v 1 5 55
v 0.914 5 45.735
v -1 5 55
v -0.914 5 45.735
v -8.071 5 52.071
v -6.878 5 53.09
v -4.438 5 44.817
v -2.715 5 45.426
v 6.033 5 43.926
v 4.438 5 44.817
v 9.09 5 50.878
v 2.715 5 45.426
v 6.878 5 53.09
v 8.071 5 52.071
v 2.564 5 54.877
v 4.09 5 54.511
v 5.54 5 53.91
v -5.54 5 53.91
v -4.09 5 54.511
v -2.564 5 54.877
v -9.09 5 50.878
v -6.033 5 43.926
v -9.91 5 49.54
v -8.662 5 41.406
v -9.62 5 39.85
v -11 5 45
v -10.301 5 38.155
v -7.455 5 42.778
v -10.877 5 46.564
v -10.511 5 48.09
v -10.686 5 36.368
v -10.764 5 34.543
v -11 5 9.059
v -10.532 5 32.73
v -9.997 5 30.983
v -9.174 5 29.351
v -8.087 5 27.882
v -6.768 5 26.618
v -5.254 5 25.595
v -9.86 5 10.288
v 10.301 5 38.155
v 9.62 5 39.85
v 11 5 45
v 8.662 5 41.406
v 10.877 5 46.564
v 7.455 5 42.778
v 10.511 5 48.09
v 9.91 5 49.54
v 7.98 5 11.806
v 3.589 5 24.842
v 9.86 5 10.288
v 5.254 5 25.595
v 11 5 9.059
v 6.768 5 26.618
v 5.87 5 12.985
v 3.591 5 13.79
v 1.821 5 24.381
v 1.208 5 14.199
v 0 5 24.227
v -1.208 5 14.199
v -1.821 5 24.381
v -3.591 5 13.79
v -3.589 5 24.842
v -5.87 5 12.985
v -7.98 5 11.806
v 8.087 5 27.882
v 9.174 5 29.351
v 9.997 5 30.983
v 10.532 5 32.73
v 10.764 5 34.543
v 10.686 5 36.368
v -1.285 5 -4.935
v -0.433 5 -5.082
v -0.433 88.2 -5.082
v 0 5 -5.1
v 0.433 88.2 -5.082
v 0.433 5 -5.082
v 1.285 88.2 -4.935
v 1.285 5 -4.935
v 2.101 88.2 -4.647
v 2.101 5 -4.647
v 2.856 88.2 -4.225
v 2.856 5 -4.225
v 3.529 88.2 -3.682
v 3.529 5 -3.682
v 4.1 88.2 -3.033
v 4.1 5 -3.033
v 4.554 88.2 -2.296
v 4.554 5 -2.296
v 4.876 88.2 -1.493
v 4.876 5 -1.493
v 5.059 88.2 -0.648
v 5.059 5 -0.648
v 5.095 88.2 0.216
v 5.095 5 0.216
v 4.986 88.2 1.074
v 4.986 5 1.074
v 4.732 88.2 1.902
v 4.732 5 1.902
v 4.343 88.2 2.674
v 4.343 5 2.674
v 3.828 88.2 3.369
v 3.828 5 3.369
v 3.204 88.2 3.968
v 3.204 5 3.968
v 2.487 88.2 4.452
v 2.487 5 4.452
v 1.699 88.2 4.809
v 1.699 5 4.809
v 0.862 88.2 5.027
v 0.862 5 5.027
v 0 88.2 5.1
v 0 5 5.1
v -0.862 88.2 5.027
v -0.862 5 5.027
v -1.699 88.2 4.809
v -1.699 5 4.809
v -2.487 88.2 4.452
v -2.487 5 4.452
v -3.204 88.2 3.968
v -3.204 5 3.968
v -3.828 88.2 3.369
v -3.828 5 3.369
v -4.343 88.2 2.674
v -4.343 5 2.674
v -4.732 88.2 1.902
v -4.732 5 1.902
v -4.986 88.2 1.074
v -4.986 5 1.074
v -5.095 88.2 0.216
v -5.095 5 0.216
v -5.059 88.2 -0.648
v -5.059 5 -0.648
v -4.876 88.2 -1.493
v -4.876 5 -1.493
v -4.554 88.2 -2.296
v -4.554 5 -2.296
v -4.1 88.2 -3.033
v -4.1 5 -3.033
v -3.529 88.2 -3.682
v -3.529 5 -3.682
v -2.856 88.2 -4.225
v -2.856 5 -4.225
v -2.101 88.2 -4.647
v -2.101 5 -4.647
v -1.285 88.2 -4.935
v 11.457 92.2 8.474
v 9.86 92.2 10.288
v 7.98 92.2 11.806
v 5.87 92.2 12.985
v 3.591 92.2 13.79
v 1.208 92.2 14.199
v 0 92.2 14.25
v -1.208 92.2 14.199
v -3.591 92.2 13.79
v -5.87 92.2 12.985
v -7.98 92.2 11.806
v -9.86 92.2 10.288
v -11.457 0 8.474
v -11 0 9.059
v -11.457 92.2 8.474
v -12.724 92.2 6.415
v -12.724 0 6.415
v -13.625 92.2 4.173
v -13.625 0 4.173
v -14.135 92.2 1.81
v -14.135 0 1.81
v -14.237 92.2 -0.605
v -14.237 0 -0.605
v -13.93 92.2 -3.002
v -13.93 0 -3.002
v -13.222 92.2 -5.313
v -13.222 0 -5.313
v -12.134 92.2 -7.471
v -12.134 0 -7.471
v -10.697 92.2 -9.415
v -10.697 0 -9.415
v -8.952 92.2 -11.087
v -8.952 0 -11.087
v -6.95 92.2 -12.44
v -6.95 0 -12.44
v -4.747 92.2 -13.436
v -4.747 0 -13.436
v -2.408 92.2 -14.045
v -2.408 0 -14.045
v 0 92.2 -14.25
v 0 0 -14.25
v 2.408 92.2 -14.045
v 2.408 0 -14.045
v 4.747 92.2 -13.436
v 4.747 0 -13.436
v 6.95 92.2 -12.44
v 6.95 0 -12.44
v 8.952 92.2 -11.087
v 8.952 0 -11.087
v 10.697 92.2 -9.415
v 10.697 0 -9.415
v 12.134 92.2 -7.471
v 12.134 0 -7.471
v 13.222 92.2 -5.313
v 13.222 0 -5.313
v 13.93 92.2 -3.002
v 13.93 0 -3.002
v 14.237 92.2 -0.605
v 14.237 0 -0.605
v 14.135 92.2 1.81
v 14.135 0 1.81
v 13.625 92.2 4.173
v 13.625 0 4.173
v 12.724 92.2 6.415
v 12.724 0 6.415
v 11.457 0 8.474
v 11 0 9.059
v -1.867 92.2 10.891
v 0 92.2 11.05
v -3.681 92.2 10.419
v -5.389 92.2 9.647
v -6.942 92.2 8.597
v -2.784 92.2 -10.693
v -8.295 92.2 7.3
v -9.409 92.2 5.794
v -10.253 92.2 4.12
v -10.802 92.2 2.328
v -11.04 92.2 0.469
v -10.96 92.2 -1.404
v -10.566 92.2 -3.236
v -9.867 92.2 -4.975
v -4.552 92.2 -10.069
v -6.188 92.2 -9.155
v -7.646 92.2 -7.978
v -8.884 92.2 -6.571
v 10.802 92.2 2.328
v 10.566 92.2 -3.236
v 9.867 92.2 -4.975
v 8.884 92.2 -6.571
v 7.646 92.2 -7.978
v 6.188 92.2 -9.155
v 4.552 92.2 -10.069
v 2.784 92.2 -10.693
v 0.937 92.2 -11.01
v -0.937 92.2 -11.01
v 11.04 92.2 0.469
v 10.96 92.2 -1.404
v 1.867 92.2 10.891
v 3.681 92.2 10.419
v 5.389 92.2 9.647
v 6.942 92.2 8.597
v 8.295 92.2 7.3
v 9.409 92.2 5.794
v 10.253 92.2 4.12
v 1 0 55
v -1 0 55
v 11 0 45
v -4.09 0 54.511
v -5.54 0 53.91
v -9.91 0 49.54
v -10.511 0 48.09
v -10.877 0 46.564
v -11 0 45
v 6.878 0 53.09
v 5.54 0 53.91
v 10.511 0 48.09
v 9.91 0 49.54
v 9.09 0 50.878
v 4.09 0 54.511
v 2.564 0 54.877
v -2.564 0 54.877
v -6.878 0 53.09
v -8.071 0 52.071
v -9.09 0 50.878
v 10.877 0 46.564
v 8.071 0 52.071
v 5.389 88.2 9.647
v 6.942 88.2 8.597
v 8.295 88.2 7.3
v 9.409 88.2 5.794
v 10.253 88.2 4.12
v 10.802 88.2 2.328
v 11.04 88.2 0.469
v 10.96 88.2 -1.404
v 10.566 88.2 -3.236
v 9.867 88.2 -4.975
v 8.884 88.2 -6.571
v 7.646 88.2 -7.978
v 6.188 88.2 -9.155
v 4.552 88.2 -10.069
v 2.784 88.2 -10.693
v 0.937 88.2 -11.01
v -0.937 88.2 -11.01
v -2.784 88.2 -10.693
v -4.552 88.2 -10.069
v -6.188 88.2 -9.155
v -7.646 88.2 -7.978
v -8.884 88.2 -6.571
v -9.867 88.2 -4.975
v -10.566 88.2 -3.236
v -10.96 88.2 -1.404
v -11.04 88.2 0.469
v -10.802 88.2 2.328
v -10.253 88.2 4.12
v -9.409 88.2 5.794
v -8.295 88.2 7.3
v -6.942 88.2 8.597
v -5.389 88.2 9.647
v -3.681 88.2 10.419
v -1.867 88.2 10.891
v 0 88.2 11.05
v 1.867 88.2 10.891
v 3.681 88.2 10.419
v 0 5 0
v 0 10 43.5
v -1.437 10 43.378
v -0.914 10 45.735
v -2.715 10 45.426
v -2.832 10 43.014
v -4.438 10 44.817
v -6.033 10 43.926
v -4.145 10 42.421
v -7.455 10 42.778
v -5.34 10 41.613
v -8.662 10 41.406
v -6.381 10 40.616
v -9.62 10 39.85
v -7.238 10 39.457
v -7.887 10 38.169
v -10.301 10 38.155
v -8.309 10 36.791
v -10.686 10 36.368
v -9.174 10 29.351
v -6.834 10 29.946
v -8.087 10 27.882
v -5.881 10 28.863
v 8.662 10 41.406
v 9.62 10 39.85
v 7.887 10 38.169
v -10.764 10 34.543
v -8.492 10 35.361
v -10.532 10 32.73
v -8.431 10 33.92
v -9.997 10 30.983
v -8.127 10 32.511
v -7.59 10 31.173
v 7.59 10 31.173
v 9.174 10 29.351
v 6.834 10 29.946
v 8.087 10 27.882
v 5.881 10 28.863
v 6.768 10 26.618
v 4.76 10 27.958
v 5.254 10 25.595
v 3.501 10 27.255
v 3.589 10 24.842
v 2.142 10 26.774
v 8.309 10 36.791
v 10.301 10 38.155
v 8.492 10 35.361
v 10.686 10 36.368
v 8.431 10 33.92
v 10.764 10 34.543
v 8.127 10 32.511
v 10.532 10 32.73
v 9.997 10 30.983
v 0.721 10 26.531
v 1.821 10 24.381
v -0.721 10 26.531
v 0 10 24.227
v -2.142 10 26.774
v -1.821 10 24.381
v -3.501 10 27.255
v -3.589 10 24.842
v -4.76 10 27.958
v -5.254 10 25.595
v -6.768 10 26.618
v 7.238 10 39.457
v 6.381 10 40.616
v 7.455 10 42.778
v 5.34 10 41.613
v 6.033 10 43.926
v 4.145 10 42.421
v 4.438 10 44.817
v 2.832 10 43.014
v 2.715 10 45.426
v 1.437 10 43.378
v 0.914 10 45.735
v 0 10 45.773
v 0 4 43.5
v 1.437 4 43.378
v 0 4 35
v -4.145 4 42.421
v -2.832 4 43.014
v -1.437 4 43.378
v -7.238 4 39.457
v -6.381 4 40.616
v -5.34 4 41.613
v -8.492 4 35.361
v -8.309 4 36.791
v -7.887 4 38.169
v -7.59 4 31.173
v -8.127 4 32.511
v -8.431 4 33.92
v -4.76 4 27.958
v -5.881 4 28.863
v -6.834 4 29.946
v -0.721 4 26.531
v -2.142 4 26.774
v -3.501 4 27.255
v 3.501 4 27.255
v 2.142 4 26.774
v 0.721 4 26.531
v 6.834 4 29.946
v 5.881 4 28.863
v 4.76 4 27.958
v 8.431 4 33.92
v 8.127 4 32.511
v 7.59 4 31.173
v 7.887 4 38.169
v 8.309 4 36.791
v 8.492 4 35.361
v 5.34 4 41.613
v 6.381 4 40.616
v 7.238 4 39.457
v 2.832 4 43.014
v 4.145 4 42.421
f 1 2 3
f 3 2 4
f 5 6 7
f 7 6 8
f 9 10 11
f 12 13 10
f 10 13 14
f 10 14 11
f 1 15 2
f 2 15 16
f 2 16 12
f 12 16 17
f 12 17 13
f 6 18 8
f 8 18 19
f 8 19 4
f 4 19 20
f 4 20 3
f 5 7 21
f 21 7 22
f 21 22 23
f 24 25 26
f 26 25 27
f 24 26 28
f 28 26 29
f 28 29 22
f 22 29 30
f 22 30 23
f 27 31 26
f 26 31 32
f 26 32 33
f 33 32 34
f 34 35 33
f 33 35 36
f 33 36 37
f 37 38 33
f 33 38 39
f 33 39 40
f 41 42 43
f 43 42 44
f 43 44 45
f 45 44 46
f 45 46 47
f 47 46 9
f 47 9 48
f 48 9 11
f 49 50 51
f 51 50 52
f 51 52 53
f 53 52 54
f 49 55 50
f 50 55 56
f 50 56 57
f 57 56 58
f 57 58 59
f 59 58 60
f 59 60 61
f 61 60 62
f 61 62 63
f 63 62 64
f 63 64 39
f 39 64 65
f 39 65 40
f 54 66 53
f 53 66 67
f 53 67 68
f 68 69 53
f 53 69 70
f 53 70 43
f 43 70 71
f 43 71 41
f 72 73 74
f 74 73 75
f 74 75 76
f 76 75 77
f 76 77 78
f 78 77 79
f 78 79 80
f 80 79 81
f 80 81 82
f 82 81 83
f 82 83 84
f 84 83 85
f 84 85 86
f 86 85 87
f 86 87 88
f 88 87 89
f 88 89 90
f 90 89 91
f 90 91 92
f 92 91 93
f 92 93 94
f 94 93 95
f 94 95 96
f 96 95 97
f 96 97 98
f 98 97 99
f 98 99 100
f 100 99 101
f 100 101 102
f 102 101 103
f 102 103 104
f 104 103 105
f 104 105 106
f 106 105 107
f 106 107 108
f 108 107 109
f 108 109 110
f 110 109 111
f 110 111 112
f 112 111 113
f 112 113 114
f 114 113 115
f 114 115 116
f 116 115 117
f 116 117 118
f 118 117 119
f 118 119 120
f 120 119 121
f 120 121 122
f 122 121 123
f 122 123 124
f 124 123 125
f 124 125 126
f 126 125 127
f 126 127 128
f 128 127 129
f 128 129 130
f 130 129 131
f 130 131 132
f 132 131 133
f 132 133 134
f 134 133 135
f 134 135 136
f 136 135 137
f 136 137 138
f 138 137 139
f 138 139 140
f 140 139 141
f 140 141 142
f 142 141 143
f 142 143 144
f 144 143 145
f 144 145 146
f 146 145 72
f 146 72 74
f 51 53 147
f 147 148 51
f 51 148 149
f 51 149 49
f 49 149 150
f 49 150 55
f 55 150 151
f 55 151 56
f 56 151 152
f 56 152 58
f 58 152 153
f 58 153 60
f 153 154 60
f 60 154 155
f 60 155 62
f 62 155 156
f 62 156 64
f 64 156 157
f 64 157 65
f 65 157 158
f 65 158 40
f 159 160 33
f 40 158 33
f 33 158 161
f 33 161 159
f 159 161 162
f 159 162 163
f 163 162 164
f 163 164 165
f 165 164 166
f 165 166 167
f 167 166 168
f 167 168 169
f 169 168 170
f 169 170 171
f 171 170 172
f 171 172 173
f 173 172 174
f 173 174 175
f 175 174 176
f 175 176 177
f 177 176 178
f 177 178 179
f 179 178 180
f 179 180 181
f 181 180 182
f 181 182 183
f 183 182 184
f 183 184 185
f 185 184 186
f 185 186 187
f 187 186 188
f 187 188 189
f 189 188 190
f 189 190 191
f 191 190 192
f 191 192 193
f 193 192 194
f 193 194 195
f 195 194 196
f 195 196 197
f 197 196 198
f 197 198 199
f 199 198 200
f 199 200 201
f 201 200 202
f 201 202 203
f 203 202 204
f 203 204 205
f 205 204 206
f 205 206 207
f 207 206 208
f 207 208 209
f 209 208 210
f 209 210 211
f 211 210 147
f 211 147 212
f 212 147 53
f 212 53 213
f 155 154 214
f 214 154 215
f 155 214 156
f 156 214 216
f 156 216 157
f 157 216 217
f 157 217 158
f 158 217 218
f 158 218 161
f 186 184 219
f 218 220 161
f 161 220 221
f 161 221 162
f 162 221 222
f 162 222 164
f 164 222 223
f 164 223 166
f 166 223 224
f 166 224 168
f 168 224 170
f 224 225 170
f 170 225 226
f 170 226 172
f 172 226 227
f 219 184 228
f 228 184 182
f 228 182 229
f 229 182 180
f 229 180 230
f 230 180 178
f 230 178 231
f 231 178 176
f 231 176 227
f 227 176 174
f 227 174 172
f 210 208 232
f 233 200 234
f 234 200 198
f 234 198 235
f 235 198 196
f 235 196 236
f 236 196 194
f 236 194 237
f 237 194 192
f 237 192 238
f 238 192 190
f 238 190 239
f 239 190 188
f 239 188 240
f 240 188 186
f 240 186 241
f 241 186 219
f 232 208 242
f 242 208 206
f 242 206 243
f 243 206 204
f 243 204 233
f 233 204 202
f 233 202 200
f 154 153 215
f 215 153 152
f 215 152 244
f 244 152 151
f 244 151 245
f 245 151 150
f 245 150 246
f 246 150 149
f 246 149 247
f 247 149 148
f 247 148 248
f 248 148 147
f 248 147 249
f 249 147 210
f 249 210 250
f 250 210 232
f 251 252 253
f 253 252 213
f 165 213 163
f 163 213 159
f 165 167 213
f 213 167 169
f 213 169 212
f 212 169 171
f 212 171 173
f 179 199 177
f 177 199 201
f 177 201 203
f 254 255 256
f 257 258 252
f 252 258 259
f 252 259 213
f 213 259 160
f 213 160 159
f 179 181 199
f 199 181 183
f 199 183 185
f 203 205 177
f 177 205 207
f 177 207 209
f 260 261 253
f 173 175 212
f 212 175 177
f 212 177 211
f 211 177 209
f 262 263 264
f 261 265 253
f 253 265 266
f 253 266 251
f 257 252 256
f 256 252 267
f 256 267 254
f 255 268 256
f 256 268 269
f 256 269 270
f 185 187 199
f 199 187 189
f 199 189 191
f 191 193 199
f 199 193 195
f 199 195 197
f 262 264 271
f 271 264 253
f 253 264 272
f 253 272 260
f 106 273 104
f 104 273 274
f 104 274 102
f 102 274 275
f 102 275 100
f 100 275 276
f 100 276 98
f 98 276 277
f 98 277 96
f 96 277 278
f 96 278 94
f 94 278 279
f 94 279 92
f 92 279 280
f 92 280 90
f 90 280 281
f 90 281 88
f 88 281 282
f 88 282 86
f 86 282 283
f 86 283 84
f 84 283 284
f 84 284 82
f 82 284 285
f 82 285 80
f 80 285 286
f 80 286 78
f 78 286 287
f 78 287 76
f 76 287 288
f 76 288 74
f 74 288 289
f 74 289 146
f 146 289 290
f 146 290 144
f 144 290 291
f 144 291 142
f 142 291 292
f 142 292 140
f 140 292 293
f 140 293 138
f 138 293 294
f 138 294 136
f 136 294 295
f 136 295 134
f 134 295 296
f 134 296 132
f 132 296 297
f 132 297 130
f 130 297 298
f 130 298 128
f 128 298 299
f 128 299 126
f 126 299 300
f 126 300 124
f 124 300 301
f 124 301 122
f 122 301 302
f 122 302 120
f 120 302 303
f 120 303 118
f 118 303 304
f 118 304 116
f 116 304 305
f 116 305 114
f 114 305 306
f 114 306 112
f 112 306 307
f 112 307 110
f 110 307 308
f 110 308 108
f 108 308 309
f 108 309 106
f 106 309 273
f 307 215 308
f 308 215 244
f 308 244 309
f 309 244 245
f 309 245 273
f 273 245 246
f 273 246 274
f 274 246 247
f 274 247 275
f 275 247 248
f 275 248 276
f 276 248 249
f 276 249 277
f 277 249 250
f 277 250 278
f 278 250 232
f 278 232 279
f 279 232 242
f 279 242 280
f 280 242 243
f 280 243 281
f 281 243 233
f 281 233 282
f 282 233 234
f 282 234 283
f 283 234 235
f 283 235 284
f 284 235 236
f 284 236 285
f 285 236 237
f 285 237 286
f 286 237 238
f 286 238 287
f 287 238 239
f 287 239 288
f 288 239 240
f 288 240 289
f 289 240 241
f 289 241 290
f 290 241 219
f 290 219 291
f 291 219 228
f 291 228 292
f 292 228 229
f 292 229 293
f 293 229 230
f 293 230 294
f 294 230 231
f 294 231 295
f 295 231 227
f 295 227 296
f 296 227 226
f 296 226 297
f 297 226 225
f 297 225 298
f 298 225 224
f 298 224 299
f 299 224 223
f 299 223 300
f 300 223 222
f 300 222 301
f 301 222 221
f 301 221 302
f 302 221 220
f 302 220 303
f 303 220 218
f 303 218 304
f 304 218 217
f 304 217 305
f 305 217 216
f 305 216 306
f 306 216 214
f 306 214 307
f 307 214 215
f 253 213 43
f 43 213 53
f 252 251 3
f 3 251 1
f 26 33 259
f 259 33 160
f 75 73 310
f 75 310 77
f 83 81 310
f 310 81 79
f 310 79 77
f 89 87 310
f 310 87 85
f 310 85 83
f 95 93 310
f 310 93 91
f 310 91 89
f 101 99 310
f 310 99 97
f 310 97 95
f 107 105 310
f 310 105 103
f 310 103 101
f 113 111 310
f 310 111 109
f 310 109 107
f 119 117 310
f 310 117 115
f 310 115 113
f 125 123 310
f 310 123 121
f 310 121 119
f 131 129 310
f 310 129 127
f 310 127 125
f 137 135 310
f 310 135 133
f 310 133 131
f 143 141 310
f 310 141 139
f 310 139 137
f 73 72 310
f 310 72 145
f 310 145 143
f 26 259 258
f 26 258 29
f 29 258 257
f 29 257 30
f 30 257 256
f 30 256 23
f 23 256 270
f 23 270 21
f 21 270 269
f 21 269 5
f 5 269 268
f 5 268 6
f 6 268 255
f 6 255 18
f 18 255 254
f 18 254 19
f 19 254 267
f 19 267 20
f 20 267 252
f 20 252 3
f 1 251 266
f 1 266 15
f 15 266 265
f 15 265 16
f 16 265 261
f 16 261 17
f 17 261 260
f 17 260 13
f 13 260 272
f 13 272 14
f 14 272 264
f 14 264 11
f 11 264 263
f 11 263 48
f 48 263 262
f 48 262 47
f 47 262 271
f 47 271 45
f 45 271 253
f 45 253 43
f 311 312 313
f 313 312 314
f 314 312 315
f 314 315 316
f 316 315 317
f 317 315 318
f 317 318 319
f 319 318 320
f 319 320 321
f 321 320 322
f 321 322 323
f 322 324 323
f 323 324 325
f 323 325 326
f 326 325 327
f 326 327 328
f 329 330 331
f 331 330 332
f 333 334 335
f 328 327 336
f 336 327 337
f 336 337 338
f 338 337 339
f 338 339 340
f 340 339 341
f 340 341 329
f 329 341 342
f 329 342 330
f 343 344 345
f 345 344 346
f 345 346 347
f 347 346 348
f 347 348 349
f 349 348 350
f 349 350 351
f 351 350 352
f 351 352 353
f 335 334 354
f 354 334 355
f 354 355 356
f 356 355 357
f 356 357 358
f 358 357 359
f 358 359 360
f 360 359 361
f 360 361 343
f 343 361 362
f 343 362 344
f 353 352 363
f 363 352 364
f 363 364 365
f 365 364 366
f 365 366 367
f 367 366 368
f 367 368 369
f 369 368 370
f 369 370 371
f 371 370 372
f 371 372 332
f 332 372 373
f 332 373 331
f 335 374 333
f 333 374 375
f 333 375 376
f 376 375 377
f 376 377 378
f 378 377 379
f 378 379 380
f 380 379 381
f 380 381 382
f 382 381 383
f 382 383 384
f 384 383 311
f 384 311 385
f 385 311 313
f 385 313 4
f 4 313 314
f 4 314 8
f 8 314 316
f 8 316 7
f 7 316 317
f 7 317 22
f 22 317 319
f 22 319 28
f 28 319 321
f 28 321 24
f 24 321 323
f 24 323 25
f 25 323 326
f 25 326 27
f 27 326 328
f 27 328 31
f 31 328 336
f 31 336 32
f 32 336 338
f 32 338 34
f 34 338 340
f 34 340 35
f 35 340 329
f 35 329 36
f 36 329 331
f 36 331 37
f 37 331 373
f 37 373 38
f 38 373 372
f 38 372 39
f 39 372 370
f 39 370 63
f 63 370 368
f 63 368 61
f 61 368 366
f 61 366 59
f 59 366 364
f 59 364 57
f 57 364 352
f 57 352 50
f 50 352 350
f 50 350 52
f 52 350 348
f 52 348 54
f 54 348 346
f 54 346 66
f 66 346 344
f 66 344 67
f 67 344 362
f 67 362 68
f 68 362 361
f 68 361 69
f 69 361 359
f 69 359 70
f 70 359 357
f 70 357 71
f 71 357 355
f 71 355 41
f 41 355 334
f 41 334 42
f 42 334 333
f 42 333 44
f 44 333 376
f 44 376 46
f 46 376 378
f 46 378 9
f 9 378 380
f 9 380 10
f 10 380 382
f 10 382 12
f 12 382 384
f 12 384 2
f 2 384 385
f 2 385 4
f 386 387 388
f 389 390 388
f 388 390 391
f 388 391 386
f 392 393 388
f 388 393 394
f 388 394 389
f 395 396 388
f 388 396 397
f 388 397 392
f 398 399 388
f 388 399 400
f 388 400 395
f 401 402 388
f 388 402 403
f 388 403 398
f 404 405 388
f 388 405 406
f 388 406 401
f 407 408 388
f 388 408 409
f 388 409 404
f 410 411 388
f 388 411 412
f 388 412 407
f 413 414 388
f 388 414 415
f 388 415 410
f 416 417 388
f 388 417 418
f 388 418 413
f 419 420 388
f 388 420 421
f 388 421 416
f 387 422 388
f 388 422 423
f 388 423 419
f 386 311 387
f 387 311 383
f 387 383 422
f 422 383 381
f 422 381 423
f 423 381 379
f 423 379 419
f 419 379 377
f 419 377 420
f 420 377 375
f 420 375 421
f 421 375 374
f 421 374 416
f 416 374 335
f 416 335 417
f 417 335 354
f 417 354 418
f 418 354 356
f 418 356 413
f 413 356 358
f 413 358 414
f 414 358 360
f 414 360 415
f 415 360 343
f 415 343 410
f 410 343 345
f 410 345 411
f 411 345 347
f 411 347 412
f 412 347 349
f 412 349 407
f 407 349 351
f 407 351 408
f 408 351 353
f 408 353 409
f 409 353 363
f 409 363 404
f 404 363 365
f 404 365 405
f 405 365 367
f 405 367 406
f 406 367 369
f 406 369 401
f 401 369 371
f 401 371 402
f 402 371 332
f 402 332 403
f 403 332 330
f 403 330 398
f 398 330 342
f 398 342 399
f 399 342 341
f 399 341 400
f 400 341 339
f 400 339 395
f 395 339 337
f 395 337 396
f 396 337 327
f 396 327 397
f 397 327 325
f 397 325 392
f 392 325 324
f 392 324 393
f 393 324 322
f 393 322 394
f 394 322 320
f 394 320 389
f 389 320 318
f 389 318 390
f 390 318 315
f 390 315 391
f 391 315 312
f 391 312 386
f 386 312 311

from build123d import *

# Parameters (mm, degrees)
SKETCH1_R           = 14.25
BOSS_EXTRUDE1_DEPTH = 92.2
SKETCH2_R           = 5.1
CUT_EXTRUDE1_DEPTH  = 92.2
SKETCH3_R           = 11.05
CUT_EXTRUDE2_DEPTH  = 4
BOSS_EXTRUDE2_DEPTH = 5
SKETCH6_R           = 8.5
CUT_EXTRUDE3_DEPTH  = 1
FILLET1_R           = 10
BOSS_EXTRUDE3_START = 5
SKETCH7_R           = 10.773488024
SKETCH7_R_2         = 8.5
BOSS_EXTRUDE3_DEPTH = 5


with BuildPart() as part:
    # Sketch1 → Boss-Extrude1 (new body)
    with BuildSketch(Plane(origin=(0, 0, 0), x_dir=(1, 0, 0), z_dir=(0, 1, 0))):
        with Locations(Location((0, 0, 0), (0, 0, 270))):
            Circle(SKETCH1_R)
    extrude(amount=BOSS_EXTRUDE1_DEPTH)

    # Sketch2 → Cut-Extrude1 (cut)
    with BuildSketch(Plane(origin=(0, 92.2, 0), x_dir=(1, 0, 0), z_dir=(0, 1, 0))):
        with Locations(Location((0, 0, 0), (0, 0, 270))):
            Circle(SKETCH2_R)
    extrude(amount=-CUT_EXTRUDE1_DEPTH, mode=Mode.SUBTRACT)

    # Sketch3 → Cut-Extrude2 (cut)
    with BuildSketch(Plane(origin=(0, 92.2, 0), x_dir=(1, 0, 0), z_dir=(0, 1, 0))):
        with Locations(Location((0, 0, 0), (0, 0, 270))):
            Circle(SKETCH3_R)
    extrude(amount=-CUT_EXTRUDE2_DEPTH, mode=Mode.SUBTRACT)

    # Sketch4 → Boss-Extrude2 (add)
    with BuildSketch(Plane.XZ):
        with BuildLine():
            Line((-11, 55), (11, 55))
            Line((11, 55), (11, 9.058835466))
            ThreePointArc((11, 9.058835466), (0, -14.25), (-11, 9.058835466))
            Line((-11, 9.058835466), (-11, 55))
        make_face()
    extrude(amount=-BOSS_EXTRUDE2_DEPTH)

    # Sketch6 → Cut-Extrude3 (cut)
    with BuildSketch(Plane(origin=(0, 5, 0), x_dir=(1, 0, 0), z_dir=(0, 1, 0))):
        with Locations(Location((0, -35, 0), (0, 0, 270))):
            Circle(SKETCH6_R)
    extrude(amount=-CUT_EXTRUDE3_DEPTH, mode=Mode.SUBTRACT)

    # Fillet1
    fillet1_edges = [part.edges().sort_by_distance(p)[0] for p in [
        (-11, 2.5, 55),
        (11, 2.5, 55),
    ]]
    fillet(fillet1_edges, radius=FILLET1_R)

    # Sketch7 → Boss-Extrude3 (add)
    with BuildSketch(Plane(origin=(0, 5, 0), x_dir=(1, 0, 0), z_dir=(0, 1, 0)).offset(BOSS_EXTRUDE3_START)):
        with Locations(Location((0, -35, 0), (0, 0, 90))):
            Circle(SKETCH7_R)
        with Locations(Location((0, -35, 0), (0, 0, 270))):
            Circle(SKETCH7_R_2, mode=Mode.SUBTRACT)
    extrude(amount=-BOSS_EXTRUDE3_DEPTH)


solid = part.part
